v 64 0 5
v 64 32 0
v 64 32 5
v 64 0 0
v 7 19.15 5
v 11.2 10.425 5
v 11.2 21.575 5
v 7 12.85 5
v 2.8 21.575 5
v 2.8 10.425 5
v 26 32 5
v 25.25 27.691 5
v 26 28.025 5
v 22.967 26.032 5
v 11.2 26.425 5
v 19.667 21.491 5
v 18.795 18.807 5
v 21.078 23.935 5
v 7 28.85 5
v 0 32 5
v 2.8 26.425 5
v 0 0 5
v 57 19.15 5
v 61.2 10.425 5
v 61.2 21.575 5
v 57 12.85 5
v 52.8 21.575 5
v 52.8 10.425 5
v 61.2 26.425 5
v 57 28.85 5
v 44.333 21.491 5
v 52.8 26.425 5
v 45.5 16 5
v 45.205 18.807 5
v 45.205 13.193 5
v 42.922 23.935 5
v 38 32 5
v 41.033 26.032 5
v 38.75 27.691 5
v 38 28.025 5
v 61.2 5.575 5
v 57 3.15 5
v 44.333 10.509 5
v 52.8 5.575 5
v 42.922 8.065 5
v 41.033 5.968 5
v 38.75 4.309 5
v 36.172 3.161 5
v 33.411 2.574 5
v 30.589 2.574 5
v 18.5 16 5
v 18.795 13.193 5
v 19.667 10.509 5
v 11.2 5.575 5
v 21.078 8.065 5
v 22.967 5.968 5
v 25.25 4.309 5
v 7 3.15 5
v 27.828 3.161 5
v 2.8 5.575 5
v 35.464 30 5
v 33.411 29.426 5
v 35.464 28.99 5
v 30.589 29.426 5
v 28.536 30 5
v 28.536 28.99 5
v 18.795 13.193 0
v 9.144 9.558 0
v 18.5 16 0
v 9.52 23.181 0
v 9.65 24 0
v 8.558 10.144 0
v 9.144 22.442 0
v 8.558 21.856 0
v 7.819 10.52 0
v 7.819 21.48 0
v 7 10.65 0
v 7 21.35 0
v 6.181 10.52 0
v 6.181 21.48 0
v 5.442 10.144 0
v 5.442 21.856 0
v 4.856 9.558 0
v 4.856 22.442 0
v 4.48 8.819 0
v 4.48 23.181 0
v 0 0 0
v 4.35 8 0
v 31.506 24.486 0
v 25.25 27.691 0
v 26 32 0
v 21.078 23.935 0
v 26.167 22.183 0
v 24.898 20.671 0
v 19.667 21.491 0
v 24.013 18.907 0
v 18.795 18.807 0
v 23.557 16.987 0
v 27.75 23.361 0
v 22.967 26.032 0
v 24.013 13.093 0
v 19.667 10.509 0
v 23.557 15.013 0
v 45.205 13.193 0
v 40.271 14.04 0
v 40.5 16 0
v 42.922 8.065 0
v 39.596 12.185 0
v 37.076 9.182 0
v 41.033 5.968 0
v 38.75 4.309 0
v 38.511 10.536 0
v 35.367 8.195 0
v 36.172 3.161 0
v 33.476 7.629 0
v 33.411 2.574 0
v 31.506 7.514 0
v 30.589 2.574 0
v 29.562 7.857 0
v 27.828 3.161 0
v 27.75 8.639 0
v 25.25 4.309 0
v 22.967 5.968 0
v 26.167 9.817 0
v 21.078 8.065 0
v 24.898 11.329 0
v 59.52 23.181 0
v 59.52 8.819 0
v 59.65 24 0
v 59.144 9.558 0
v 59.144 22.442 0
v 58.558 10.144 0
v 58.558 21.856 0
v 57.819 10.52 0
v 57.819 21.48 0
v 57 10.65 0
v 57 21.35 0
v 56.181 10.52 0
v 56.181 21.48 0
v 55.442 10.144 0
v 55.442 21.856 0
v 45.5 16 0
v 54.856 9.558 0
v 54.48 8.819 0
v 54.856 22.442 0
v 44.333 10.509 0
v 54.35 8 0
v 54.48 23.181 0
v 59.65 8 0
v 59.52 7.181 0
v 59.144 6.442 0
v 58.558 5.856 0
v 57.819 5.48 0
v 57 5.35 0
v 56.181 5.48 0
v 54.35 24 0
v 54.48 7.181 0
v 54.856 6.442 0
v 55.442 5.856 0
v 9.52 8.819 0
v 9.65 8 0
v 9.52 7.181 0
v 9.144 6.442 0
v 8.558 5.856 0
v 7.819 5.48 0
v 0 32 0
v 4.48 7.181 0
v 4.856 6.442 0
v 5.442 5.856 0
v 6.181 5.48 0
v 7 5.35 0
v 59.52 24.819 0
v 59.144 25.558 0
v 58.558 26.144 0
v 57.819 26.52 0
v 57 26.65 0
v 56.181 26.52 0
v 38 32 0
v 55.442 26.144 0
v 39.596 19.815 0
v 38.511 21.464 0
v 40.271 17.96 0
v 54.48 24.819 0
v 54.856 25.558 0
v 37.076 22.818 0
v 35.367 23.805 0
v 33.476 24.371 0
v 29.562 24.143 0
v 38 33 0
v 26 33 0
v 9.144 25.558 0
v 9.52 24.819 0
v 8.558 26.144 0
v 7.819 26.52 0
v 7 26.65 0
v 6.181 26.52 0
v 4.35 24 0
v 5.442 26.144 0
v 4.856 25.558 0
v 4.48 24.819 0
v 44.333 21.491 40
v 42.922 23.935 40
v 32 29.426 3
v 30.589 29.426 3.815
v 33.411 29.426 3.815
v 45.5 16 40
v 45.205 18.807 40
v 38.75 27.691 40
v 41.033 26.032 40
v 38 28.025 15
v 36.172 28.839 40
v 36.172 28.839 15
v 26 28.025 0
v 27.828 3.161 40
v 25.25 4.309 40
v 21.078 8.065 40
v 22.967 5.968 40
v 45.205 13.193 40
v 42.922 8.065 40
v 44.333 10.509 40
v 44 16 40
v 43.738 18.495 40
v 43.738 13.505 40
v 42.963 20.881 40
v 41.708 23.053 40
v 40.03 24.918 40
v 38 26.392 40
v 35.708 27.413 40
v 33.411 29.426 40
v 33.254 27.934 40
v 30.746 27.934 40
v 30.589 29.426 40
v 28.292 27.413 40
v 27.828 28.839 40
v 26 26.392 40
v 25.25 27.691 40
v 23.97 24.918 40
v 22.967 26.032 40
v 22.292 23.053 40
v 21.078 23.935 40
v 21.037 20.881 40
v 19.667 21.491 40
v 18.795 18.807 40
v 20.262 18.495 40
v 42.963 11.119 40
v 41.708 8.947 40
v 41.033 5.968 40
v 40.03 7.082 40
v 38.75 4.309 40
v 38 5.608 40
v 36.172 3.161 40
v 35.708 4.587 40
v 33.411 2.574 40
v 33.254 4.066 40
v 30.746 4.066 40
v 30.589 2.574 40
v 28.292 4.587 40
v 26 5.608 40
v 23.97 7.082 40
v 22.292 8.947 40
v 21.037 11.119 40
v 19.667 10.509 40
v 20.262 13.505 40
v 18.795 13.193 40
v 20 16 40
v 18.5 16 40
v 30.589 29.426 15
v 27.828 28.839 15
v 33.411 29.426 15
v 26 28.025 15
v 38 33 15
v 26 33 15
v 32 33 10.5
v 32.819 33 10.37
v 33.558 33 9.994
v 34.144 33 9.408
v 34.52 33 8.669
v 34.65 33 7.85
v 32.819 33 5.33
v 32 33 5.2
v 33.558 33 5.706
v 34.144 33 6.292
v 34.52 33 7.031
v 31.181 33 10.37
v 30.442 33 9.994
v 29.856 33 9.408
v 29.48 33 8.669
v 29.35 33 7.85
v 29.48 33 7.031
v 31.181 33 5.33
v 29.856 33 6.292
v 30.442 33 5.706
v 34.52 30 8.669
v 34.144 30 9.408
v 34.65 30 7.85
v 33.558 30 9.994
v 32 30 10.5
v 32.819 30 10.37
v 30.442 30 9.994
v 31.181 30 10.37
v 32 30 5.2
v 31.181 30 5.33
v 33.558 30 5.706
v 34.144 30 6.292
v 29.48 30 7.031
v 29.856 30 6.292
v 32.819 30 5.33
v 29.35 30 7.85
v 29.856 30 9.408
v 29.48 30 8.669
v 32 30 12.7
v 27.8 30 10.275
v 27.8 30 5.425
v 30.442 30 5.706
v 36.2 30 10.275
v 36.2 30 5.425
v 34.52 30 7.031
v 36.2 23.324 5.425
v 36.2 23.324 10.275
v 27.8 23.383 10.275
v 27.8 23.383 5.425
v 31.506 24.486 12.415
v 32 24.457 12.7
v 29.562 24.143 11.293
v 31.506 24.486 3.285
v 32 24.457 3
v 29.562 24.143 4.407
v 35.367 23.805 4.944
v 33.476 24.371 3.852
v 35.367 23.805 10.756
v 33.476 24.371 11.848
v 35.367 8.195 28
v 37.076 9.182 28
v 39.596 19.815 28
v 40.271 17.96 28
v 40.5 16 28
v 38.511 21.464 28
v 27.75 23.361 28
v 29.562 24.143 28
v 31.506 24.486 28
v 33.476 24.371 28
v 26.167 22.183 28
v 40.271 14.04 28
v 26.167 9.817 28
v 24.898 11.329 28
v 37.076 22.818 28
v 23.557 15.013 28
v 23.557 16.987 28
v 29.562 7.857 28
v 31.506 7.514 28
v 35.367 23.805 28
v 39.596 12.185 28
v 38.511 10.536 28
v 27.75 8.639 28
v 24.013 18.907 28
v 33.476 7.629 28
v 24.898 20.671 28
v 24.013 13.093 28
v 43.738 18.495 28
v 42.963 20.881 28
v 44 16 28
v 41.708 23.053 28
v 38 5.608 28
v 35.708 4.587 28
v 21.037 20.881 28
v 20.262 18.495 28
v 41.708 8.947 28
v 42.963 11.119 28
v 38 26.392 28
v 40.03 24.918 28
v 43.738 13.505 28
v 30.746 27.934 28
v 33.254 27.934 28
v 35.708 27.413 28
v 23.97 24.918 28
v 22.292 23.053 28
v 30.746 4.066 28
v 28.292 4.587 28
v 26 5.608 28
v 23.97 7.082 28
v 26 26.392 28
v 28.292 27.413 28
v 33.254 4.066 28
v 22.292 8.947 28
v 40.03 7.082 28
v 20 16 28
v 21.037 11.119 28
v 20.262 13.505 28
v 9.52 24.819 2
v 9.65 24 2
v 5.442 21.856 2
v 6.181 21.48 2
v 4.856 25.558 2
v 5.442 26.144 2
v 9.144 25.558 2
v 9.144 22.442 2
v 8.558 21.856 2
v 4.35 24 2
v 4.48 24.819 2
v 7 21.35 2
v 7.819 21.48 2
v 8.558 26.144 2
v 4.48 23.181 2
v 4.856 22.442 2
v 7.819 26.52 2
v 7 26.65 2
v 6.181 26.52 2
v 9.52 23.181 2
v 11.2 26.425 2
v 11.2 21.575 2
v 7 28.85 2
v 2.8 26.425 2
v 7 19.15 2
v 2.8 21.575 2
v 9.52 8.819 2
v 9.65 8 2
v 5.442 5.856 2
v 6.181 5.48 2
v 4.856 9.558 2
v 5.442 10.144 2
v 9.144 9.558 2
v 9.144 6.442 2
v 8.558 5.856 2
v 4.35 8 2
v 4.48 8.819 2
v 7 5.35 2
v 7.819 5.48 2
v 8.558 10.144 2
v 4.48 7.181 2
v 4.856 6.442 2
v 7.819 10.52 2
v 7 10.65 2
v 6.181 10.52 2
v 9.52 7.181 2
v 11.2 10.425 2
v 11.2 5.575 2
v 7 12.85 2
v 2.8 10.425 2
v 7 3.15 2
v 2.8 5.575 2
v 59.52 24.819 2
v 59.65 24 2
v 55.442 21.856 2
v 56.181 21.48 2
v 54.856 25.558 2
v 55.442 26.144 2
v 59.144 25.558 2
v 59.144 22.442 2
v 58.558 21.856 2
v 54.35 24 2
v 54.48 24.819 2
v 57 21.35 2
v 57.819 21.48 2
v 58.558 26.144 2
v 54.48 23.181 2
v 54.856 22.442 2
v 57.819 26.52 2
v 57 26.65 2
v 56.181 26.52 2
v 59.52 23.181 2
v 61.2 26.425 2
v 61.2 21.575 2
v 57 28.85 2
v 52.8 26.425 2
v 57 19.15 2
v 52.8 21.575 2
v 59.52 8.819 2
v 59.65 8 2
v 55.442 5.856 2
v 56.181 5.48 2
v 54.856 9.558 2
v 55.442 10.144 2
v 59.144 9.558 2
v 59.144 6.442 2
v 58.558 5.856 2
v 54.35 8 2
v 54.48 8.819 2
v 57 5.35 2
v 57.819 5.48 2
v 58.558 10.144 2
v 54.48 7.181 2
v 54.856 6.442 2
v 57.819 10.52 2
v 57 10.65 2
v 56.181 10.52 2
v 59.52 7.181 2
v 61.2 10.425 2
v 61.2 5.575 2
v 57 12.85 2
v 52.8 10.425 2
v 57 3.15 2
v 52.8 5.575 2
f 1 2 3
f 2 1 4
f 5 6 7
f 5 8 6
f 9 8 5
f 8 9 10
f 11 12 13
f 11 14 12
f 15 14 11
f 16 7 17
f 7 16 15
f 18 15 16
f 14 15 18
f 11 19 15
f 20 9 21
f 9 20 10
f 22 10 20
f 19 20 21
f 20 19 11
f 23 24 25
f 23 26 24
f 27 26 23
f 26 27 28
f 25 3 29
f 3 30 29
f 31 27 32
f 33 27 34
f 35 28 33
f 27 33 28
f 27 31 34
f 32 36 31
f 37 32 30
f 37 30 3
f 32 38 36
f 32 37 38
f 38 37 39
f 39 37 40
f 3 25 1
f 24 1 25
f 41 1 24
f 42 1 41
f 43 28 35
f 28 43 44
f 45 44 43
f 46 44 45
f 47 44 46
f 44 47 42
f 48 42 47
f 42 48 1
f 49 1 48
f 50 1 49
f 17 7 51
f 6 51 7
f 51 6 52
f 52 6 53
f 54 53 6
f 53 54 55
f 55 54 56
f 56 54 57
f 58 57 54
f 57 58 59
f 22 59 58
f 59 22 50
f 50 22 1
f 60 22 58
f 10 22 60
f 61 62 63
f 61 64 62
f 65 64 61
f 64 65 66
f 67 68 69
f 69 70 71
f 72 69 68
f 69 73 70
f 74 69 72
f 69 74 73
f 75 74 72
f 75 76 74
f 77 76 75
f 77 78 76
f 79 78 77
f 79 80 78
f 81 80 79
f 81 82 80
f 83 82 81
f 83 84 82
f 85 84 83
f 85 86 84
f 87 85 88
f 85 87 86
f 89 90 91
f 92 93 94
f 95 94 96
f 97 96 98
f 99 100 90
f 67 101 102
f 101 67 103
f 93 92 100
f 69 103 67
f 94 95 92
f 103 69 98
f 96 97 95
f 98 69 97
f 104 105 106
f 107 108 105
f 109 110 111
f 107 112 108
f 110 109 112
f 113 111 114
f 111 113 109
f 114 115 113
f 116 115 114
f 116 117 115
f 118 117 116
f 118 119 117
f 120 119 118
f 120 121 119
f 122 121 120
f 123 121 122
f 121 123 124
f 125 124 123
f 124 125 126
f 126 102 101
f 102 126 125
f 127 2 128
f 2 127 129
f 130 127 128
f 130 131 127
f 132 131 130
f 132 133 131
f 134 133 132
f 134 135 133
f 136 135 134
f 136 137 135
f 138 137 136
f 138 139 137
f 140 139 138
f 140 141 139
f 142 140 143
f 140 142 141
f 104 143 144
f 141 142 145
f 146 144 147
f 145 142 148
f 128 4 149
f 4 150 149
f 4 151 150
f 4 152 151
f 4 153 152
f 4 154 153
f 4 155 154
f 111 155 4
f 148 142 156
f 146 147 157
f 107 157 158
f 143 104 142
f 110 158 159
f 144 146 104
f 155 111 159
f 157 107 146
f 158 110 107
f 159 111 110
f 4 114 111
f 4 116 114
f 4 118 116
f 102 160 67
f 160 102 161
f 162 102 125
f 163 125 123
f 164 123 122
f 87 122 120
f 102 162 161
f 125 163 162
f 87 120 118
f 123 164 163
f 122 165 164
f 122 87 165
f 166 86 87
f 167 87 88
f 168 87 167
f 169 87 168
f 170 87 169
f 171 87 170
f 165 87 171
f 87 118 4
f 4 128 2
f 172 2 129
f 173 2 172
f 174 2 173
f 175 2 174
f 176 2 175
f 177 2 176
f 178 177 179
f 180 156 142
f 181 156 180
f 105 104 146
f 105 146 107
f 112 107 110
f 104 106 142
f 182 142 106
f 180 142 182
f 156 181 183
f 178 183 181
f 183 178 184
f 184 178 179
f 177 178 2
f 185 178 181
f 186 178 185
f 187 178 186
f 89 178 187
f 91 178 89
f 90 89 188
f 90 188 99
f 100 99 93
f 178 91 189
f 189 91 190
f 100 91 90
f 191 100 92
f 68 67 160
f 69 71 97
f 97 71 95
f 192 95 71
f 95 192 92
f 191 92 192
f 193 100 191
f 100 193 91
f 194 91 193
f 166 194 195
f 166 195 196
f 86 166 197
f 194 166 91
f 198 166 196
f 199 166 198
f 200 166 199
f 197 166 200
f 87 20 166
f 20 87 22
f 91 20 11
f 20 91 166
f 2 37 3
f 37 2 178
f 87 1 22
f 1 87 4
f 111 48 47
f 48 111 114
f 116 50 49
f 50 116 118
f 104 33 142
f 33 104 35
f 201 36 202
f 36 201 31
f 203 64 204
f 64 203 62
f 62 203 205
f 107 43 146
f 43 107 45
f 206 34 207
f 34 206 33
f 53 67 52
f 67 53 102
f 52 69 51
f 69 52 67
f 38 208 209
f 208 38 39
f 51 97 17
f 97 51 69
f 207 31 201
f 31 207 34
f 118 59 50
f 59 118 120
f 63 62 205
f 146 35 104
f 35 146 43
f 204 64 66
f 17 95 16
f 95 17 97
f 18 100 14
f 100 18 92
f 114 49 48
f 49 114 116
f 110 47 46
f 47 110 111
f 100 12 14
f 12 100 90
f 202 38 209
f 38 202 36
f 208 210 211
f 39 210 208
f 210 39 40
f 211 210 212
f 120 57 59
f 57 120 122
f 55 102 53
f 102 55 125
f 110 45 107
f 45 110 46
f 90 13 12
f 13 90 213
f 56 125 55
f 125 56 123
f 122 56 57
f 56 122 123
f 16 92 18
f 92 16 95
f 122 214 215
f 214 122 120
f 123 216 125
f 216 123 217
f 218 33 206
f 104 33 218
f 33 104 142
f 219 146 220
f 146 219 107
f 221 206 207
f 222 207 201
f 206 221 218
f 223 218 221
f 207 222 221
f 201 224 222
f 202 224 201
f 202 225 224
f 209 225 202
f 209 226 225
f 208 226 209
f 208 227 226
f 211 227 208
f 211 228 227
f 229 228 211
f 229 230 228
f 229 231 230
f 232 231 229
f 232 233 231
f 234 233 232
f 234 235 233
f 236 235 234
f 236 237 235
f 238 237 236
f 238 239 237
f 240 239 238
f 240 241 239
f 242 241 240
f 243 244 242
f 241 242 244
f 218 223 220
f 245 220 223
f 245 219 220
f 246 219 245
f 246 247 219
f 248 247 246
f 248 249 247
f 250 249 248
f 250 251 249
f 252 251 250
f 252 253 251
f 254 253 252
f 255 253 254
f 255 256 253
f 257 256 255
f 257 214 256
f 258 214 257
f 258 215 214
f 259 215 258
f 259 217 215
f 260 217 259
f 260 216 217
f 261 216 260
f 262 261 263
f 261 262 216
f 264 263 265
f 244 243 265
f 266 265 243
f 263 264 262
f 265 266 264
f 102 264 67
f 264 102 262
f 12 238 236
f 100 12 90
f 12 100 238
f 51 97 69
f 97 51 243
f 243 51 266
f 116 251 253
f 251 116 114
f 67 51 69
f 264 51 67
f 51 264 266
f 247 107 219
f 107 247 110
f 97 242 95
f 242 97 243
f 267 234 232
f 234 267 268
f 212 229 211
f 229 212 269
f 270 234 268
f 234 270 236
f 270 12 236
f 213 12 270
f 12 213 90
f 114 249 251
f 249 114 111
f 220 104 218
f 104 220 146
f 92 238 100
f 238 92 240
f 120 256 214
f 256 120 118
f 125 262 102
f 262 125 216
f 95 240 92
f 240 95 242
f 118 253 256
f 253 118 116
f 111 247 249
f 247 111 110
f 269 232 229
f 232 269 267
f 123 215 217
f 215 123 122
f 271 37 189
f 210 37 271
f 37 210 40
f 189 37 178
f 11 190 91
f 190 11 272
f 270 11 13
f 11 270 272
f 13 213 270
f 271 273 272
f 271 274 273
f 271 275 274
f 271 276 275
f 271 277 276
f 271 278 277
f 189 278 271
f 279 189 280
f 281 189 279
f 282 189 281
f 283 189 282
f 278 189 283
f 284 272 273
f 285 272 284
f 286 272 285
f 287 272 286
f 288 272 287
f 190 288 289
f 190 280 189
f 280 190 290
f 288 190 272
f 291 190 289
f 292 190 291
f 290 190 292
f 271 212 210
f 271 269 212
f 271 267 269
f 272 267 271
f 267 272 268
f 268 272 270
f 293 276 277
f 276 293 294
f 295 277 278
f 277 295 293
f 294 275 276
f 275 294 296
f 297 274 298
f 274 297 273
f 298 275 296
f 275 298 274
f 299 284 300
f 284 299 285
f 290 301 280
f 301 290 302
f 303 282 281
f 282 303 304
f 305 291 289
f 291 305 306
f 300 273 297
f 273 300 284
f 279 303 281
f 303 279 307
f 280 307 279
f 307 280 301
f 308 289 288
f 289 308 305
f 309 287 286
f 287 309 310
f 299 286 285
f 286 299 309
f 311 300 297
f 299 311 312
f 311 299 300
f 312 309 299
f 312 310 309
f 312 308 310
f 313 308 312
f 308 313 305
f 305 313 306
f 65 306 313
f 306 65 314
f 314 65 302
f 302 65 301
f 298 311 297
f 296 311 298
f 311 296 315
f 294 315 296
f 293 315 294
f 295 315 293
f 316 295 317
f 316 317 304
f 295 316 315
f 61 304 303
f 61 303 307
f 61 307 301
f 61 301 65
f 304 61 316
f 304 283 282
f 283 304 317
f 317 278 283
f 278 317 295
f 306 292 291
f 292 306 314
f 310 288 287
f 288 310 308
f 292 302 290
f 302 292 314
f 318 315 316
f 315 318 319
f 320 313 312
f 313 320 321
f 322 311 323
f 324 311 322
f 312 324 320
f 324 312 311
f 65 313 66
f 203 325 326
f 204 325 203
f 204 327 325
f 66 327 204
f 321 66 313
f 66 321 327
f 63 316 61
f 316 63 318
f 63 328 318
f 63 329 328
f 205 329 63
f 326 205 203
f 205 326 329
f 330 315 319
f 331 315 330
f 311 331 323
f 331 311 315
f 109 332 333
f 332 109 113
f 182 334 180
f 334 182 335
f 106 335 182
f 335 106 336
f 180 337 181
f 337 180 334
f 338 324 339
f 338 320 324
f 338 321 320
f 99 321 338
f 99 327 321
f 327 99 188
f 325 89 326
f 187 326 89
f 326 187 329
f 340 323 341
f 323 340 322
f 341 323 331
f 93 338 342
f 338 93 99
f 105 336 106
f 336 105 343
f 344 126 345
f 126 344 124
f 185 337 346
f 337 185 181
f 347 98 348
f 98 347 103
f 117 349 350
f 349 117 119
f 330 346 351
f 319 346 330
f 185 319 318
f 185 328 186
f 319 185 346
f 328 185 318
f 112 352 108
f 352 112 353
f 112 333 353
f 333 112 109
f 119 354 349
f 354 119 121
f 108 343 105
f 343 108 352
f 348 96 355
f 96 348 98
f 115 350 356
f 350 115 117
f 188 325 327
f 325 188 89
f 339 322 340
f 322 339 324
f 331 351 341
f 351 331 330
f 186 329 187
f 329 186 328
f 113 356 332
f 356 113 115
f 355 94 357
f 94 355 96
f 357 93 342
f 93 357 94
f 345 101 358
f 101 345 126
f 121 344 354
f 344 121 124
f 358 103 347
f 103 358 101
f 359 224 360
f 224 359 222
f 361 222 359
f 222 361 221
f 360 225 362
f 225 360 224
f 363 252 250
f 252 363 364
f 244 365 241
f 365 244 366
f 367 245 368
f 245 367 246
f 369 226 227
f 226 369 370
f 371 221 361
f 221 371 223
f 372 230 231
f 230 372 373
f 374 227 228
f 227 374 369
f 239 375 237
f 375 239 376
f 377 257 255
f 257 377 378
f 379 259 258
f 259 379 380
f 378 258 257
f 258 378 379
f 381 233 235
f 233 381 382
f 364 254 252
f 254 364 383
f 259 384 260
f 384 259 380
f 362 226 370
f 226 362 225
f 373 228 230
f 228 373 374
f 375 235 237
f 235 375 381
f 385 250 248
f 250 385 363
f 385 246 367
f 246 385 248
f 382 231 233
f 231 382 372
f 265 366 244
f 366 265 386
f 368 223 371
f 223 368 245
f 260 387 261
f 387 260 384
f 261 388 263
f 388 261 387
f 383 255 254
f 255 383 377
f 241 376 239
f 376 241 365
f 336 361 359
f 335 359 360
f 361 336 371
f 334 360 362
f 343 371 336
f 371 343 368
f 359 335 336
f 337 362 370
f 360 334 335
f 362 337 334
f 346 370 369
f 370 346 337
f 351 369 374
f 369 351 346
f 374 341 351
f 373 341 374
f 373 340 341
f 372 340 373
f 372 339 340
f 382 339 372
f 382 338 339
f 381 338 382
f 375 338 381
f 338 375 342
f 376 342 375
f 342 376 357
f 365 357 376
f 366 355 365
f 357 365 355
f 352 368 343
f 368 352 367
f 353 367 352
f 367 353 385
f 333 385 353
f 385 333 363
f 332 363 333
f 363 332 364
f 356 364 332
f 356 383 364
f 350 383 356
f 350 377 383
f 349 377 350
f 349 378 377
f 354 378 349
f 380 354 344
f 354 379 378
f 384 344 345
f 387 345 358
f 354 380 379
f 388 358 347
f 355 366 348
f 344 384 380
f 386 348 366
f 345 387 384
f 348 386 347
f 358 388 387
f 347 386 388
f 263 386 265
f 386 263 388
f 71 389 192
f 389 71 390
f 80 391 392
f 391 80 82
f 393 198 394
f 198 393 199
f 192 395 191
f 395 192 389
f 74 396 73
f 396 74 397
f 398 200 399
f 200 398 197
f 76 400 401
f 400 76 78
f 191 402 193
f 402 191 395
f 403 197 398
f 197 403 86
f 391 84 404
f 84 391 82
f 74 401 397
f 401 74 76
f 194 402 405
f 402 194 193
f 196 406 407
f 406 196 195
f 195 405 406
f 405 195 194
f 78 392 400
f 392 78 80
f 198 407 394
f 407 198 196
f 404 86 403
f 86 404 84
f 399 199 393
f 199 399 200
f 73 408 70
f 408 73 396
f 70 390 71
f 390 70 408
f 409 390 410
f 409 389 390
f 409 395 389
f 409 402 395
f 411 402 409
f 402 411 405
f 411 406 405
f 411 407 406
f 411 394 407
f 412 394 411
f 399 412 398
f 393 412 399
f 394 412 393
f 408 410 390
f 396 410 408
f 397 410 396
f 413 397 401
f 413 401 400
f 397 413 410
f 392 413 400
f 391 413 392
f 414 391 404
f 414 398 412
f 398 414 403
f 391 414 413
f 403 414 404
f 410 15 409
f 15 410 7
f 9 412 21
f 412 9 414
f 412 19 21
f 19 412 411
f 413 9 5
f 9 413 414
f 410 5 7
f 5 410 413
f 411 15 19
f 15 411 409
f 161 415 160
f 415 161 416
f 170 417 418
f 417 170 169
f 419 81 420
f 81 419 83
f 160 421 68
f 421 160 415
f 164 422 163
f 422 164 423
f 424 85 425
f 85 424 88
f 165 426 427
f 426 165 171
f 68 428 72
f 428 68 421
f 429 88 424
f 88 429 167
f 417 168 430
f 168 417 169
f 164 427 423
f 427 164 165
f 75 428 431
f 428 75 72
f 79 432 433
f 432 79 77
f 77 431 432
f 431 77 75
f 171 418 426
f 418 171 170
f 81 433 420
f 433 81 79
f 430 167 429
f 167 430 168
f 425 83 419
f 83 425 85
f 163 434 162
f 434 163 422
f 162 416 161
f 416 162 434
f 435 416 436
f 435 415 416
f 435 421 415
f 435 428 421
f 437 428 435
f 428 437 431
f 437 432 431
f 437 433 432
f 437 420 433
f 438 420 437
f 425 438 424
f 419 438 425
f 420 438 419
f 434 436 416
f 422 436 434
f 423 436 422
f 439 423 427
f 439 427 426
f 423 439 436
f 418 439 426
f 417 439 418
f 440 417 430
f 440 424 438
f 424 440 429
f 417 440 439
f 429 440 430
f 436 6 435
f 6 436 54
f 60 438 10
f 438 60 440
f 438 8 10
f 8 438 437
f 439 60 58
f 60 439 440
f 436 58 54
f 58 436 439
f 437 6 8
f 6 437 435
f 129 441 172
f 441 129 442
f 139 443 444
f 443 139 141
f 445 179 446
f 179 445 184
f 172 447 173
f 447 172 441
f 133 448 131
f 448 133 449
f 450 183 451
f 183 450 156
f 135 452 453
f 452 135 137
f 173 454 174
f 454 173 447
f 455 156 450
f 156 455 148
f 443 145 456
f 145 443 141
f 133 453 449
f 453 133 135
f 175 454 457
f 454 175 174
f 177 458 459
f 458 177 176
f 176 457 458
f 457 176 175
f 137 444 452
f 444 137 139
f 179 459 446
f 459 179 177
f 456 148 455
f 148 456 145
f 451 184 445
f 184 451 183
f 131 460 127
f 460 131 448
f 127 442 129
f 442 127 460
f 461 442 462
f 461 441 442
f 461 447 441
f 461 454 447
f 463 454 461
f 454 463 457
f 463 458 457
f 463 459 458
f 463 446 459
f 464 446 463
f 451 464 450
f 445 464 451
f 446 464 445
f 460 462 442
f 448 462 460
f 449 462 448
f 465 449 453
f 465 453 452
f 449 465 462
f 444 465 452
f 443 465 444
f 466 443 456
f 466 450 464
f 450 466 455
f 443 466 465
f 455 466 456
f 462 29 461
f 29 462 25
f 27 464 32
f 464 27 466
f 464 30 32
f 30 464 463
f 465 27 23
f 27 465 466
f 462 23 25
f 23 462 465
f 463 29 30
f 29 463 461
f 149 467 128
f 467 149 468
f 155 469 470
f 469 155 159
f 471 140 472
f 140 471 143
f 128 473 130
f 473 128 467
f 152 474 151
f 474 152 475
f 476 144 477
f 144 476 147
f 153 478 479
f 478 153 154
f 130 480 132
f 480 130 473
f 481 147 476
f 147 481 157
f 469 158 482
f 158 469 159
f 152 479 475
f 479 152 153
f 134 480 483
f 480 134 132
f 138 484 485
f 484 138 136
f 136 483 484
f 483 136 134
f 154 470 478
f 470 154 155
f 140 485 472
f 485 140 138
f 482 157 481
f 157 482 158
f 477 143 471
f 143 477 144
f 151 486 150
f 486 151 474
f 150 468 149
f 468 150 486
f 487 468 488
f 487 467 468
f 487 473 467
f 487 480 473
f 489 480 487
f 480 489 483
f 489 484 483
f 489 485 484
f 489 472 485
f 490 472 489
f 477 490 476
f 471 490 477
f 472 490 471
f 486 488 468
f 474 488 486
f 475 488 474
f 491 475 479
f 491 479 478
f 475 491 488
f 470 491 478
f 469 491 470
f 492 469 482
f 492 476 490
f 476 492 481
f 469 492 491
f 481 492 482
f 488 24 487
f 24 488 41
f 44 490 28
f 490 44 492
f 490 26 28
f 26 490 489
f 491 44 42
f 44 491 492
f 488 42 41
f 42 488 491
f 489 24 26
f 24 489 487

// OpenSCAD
// file: common.scad
//GLOBAL VALUES


ear_outer=32; // Outer diameter of each ear
ear_inner=5; // hole for each ear M5

mounting_gap = 6.9; // gap between two ears to mount the light



ear_thick=8;

stacked_len = ear_thick*3;
screw_mount_space = 20;
screw_mount_offset =7;
total_len = stacked_len + screw_mount_space*2;
mounting_diff = 8;

//M3 fastener values

m3_nut_trap_d = 6.7;
m3_nut_thick= 2.4;

m3_bolt_head_d = 5.6;
m3_bolt_thick = 3;

//M5 fastener values

m5_nut_thick = 4;
m5_locknut_thick = 5;
nut_trap_d = 9.7;
bolt_head_d = 8.6;



module bolt_nut(hole_len, bolt_d, flip=false){
    /*
        Create a model for a hole with bolt end on one end and nut hole on the other end.
    Note, this functions doesn't subtract the model it only makes the model
    */
    // currently only implemented for 3mm
    if (flip){
        hole_w_end(hole_len, m3_nut_thick, "hex", bolt_d);
        translate([0,0, hole_len]){
            rotate([180, 0, 0]){
                hole_w_end(hole_len, m3_bolt_thick, "round", bolt_d);
            }
        }
    } else {
        hole_w_end(hole_len, m3_bolt_thick, "round", bolt_d);
        translate([0,0, hole_len]){
            rotate([180, 0, 0]){
                hole_w_end(hole_len, m3_nut_thick, "hex", bolt_d);
            }
        }
    }
}

// More generic functions replacing m5_ hole-making functions
module hole_w_end(hole_len, trap_height, type, bolt_d, flip=false){
    /*
       bolt_d - bolt diameter, i.e. 3, 5 mm
        type -- type of the head hole: 'none', 'hex', 'round
    */
    if (type != "none"){
        cylinder(h=hole_len-trap_height, d=bolt_d, $fn=20);
        if (flip){
            m_recess(trap_height, type, bolt_d);
            translate([0,0,trap_height])
                cylinder(h=hole_len-trap_height, d=bolt_d, $fn=20);

        } else {
                translate([0,0, hole_len - trap_height])
                    m_recess(trap_height, type, bolt_d);
        }
    } else {
        cylinder(h=hole_len, d=bolt_d);
    }
}

module m_recess(height, end_type, bolt_d) {
    // nut/bolt capture hole
    /*
       bolt_d - bolt diameter, i.e. 3, 5 mm
        type -- type of the head hole: 'none', 'hex', 'round
    */
    if (bolt_d >= 3 && bolt_d <= 4){
        //M3
        make_recess(height, end_type, m3_nut_trap_d);
    } else if (bolt_d >= 5 && bolt_d <= 6){
        // M5
        make_recess(height, end_type, nut_trap_d);
    }

}

module make_recess(height, end_type, trap_d){
    rotate([0, 0,90]){
        if (end_type == "hex"){
            cylinder(h=height, d=trap_d, $fn=6);
        } else if (end_type == "round"){
            cylinder(h=height, d=trap_d, $fn=20);
        }
    }
}


//Functions specific to M5 size,
// TODO rewrite as hole_w_end m_recess
module m5_recess(height, end_type) {
    // nut/bolt capture hole
    rotate([0, 0,90]){
        if (end_type == "hex"){
            cylinder(h=height, d=nut_trap_d, $fn=6);
        } else if (end_type == "round"){
            cylinder(h=height, d=nut_trap_d, $fn=20);
        }
    }
}



module m5_hole_w_end(hole_len, trap_height, type){
    //Given hole lenght and trap height create a nut trap hole
    if (type != "none"){
        cylinder(h=hole_len-trap_height, d=5.3, $fn=20); // M5 hole;
            translate([0,0, hole_len-trap_height])
                m5_recess(trap_height, type);
    } else {
        cylinder(h=hole_len, d=5.3); // M5 hole;
    }
}
module m5_hole_w_ends(hole_len, nut_extra=0){
    m5_hole_w_end(hole_len, m5_nut_thick, "round");
    rotate([0, 180, 0])
        translate([0, 0, - hole_len])
            m5_hole_w_end(hole_len, m5_nut_thick + nut_extra, "hex");

}
module set_mounting_hole(x_offset, y_offset, thickness, nut_height, end_type, flip=false){
    /*
    end_type -- end types: - hex, round, none
    */
    translate([x_offset, y_offset, 0]){
        hole_w_end(thickness, nut_height, end_type, 5.3, flip);
    }
}



module mounting_holes_2(fastener_len, nut_height, end_type){
    width_offsetn = 16;
    set_mounting_hole(
        screw_mount_offset,
        width_offset + mounting_diff,
        fastener_len,
        nut_height,
        end_type);

    set_mounting_hole(
        total_len - screw_mount_offset,
        width_offset + mounting_diff,
        fastener_len,
        nut_height,
        end_type);


 }

module mounting_holes(fastener_len, nut_height, end_type, flip=false){
    width_offset = 16;
    // Side towards the beginning
    set_mounting_hole(
        screw_mount_offset,
        width_offset + mounting_diff,
        fastener_len,
        nut_height,
        end_type,
        flip);

    set_mounting_hole(
        screw_mount_offset,
        width_offset - mounting_diff,
        fastener_len,
        nut_height,
        end_type,
        flip);

    // Side towards the end
    set_mounting_hole(
        total_len - screw_mount_offset,
        width_offset + mounting_diff,
        fastener_len,
        nut_height,
        end_type,
        flip);

    set_mounting_hole(
        total_len - screw_mount_offset,
        width_offset - mounting_diff,
        fastener_len,
        nut_height,
        end_type,
        flip);
}
// main file
include <common.scad>

// mount for the side of the stand

// Vertical dimensions
stand_mount_h=28;
top_segment=5;
mid_cutout=10;
bottom_segment=13;

// distance under the thread of the stand
under_thread_dist = 4;

//horizontal dimensions
cutout_width = 12;
inner_width = 17;
outer_width = 24;

large_outer = 27;
large_outer_h = 40;

module stand_hole(h, outer_d, inner_d, attach_offset){
    difference(){
        cyl_w_m5_side_attach(h, outer_d, attach_offset);
        cylinder(h=h, d=inner_d);
        
    }
}

module stand_base(base_thick, outer_d){
        difference(){
            cube([total_len, ear_outer, base_thick]);
            translate([total_len/2, ear_outer/2, 0])
                cylinder(h=base_thick, d=outer_d);
        }
}

module cyl_w_base(base_thick, outer_d, inner_d, cyl_h, attach_offset){
    //Create base and cylinder mount
    // base_thick -- base thickness
    // outer_d -- outer diameter shell
    // inner_d -- inner diameter of a light mount
    // attach_offset - z offset
    stand_base(base_thick, outer_d);
    translate([total_len/2, ear_outer/2, 0])
        stand_hole(cyl_h, outer_d, inner_d, attach_offset);
    
    }

module cyl_w_m5_side_attach(cyl_h, outer_d, attach_offset){
    // Given mounting height, outer diameter of the sylinder and z-height attach offset
    // Build an attachement to fastening cylinder to the stand using m5 bolt and semi-captured nut
    flat_w = 12;
    extra_thick= 8;
    difference(){
        union() {
            cylinder(h=cyl_h, d=outer_d);
            if (attach_offset > 0){
                translate([-flat_w/2, inner_width/2, 0])
                        cube([flat_w, inner_width/2, attach_offset]);
            }
            translate([-flat_w/2, inner_width, attach_offset]){
                rotate([90, 0, 0])
                        cube([flat_w, flat_w, m5_nut_thick+extra_thick]);
                        
            }
        }
        translate([0, flat_w+extra_thick-1, nut_trap_d/2 + attach_offset])
            rotate([90, 0, 0])
                // nut needs extra room inside the cylinder (m5_nut_thick+3)
                m5_hole_w_end(m5_nut_thick+extra_thick, m5_nut_thick+3, "hex");
    }
}

//side_m5_attach();


base_thick = 5;
difference(){
    difference(){
        cyl_w_base(
            base_thick,
            large_outer,
            inner_width,
            large_outer_h,
            top_segment-m5_nut_thick/2
        );
        //cutout for a larger mount
        translate([total_len/2, ear_outer/2, stand_mount_h  ])
            cylinder(h=large_outer_h-stand_mount_h, d=outer_width);
    }
    // Round hole mount
    //mounting_holes(base_thick, m5_nut_thick-2, "round");
    mounting_holes(base_thick, m5_nut_thick-1, "hex");
}

//stand_hole(stand_mount_h, outer_width, inner_width, top_segment);
